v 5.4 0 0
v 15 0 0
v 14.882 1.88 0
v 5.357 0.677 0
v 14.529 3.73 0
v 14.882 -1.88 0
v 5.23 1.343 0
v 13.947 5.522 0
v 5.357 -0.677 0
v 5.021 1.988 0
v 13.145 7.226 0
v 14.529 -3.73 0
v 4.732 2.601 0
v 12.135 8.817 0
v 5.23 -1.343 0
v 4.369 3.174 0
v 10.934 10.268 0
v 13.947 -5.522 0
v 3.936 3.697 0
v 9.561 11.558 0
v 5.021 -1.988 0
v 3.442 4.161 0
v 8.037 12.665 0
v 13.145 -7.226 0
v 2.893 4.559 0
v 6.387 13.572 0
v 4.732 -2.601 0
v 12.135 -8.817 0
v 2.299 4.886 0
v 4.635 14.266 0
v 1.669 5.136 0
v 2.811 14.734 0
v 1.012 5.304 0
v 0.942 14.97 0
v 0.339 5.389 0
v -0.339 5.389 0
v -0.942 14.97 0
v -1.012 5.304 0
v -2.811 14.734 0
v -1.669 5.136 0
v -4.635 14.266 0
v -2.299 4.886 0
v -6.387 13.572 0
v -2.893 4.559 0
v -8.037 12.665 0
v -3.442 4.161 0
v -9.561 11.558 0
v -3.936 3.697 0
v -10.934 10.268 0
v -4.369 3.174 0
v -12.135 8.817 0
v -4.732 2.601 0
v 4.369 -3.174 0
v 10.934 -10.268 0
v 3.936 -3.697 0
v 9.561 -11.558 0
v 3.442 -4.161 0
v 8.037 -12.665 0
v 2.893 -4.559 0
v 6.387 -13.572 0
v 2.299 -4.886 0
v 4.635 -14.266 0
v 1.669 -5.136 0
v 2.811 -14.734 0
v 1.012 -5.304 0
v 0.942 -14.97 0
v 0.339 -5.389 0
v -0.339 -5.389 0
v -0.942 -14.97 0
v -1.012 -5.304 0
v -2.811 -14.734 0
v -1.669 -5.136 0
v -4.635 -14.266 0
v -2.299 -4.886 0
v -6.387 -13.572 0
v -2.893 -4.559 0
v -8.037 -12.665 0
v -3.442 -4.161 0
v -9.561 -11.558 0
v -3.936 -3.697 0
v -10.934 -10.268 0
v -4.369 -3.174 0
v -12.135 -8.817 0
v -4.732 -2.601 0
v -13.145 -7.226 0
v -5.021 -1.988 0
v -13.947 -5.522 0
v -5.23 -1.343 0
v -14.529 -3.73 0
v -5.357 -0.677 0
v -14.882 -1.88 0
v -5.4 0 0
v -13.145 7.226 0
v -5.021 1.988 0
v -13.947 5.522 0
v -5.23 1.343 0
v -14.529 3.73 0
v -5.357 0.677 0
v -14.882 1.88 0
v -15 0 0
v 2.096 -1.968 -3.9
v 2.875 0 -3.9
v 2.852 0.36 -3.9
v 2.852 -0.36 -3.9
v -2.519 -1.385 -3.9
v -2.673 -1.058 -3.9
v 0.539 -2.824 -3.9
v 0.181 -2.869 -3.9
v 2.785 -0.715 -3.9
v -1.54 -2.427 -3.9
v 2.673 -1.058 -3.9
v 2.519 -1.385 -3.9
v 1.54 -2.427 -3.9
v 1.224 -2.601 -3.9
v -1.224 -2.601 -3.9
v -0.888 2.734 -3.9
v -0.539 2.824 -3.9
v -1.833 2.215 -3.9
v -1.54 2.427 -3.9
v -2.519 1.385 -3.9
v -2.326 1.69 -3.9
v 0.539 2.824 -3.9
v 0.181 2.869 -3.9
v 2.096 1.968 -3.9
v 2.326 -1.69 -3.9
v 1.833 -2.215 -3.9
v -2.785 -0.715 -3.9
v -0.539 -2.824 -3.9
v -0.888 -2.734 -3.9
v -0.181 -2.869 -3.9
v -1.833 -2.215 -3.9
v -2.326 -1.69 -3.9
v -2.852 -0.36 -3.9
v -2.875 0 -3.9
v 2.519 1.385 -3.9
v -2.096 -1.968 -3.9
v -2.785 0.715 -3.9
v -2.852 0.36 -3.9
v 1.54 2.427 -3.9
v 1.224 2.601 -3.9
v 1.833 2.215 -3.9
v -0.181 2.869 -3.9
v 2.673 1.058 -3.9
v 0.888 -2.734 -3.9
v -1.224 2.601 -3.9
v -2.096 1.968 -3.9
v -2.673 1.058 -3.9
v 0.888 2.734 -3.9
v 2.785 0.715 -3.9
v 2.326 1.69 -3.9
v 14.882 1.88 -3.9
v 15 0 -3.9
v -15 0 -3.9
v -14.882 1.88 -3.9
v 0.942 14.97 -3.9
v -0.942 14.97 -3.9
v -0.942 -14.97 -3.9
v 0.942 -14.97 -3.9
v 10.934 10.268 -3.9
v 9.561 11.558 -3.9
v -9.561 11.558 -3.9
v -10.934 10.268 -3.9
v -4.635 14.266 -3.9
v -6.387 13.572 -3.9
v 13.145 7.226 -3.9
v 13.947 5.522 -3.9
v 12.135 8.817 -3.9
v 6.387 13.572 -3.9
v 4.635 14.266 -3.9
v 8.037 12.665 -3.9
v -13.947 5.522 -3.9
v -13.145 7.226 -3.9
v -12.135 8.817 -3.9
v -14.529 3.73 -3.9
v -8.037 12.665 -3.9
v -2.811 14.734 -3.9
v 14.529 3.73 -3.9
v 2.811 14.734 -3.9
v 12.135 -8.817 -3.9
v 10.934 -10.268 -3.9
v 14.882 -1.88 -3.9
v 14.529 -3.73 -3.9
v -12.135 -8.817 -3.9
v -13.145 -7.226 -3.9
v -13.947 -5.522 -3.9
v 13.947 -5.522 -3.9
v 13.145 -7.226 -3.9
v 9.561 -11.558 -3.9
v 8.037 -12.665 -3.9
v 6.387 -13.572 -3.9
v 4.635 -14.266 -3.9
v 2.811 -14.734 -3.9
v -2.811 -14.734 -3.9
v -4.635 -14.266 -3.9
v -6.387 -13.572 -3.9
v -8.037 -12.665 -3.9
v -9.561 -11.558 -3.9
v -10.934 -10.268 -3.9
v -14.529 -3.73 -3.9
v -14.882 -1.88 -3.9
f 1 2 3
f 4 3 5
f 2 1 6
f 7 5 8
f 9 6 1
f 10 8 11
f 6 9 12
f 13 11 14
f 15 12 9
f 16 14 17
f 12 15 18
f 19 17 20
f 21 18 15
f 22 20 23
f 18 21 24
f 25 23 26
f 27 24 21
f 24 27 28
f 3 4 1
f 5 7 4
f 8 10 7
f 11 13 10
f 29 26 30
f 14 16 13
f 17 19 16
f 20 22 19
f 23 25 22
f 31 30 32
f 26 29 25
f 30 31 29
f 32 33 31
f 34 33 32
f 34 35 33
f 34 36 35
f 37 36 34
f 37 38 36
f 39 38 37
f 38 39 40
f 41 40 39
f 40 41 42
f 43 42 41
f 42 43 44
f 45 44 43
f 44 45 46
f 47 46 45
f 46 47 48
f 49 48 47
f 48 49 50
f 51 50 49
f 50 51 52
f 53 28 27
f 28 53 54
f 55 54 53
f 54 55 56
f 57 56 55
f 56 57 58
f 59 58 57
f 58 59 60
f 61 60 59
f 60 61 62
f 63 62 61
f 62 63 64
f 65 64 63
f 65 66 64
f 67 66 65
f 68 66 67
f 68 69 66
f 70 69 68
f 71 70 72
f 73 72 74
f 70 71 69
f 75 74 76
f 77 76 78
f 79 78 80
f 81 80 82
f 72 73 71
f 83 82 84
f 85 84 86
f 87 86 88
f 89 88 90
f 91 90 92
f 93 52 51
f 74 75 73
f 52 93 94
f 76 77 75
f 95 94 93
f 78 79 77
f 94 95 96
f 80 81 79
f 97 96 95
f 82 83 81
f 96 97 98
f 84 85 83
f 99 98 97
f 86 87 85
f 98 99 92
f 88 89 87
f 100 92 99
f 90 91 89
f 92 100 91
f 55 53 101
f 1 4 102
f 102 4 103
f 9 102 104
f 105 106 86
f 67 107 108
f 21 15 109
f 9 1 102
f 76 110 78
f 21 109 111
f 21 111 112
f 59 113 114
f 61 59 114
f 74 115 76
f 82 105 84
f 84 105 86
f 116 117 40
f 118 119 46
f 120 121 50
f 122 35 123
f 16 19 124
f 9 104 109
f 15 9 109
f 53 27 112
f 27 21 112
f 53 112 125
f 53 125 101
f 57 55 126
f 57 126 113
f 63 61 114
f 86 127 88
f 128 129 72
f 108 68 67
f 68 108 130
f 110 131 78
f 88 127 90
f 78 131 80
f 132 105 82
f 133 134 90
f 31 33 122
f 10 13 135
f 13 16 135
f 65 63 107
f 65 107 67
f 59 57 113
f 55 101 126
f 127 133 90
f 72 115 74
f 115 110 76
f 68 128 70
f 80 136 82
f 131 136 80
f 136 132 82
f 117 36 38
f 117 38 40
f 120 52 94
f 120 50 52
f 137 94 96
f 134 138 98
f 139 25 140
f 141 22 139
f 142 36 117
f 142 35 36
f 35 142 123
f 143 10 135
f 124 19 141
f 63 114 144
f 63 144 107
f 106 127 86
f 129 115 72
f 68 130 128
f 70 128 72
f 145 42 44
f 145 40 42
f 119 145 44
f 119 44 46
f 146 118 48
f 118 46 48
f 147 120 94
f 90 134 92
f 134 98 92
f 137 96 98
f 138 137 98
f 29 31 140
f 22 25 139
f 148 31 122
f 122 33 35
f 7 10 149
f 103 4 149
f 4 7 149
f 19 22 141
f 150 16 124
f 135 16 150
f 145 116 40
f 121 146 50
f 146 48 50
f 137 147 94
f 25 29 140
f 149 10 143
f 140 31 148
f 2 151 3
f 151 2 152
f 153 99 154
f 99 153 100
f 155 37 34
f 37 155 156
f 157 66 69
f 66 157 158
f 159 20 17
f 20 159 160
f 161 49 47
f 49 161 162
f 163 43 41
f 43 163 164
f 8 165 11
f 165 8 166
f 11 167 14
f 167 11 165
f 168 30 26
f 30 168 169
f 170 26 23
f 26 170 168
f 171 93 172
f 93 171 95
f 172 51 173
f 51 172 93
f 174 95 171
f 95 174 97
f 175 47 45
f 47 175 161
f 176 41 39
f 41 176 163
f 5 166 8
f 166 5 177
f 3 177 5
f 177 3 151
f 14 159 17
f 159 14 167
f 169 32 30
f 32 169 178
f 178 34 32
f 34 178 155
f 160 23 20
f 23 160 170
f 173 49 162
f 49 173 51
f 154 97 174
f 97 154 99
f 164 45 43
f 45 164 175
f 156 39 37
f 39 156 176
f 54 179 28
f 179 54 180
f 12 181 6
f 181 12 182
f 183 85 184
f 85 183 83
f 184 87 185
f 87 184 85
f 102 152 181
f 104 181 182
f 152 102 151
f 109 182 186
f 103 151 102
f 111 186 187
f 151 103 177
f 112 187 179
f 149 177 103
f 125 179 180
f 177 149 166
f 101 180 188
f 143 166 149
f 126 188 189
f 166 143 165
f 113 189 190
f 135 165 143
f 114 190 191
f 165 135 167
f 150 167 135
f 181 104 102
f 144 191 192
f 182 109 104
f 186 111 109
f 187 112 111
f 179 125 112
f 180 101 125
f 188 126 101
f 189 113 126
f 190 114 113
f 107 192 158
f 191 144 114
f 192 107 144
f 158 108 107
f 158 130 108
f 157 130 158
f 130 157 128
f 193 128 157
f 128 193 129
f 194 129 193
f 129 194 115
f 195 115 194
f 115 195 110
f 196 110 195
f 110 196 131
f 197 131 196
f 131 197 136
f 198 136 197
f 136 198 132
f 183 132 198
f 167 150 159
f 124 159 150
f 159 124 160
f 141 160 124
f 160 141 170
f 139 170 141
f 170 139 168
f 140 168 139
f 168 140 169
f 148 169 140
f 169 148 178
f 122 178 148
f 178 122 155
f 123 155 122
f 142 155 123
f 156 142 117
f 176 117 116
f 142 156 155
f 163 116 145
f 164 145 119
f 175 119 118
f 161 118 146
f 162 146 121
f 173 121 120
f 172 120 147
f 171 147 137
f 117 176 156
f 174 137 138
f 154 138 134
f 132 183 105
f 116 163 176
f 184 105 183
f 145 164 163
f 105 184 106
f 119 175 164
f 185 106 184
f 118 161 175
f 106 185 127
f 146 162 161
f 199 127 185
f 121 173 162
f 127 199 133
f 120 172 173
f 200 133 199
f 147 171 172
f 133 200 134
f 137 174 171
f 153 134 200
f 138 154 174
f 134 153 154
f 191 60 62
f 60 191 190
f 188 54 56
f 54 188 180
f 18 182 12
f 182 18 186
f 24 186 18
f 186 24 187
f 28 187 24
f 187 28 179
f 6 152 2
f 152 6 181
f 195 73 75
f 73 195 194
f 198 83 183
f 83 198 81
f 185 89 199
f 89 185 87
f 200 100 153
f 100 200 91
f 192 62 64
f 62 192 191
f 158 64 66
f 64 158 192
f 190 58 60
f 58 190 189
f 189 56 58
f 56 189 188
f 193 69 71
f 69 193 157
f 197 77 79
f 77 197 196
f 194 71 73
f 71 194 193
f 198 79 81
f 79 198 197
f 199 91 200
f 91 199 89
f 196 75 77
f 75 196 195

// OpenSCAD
$fn = 50;


difference() {
	union() {
		translate(v = [0, 0, -3.9000000000]) {
			cylinder(h = 3.9000000000, r = 15.0000000000);
		}
	}
	union() {
		translate(v = [0, 0, 0]) {
			rotate(a = [0, 0, 0]) {
				difference() {
					union() {
						translate(v = [0, 0, -6.9000000000]) {
							cylinder(h = 6.9000000000, r = 2.6000000000);
						}
						translate(v = [0, 0, -3.9000000000]) {
							cylinder(h = 3.9000000000, r1 = 2.8750000000, r2 = 5.4000000000);
						}
						translate(v = [0, 0, -6.9000000000]) {
							cylinder(h = 6.9000000000, r = 2.8750000000);
						}
						translate(v = [0, 0, -6.9000000000]) {
							cylinder(h = 6.9000000000, r = 2.6000000000);
						}
					}
					union();
				}
			}
		}
	}
}
